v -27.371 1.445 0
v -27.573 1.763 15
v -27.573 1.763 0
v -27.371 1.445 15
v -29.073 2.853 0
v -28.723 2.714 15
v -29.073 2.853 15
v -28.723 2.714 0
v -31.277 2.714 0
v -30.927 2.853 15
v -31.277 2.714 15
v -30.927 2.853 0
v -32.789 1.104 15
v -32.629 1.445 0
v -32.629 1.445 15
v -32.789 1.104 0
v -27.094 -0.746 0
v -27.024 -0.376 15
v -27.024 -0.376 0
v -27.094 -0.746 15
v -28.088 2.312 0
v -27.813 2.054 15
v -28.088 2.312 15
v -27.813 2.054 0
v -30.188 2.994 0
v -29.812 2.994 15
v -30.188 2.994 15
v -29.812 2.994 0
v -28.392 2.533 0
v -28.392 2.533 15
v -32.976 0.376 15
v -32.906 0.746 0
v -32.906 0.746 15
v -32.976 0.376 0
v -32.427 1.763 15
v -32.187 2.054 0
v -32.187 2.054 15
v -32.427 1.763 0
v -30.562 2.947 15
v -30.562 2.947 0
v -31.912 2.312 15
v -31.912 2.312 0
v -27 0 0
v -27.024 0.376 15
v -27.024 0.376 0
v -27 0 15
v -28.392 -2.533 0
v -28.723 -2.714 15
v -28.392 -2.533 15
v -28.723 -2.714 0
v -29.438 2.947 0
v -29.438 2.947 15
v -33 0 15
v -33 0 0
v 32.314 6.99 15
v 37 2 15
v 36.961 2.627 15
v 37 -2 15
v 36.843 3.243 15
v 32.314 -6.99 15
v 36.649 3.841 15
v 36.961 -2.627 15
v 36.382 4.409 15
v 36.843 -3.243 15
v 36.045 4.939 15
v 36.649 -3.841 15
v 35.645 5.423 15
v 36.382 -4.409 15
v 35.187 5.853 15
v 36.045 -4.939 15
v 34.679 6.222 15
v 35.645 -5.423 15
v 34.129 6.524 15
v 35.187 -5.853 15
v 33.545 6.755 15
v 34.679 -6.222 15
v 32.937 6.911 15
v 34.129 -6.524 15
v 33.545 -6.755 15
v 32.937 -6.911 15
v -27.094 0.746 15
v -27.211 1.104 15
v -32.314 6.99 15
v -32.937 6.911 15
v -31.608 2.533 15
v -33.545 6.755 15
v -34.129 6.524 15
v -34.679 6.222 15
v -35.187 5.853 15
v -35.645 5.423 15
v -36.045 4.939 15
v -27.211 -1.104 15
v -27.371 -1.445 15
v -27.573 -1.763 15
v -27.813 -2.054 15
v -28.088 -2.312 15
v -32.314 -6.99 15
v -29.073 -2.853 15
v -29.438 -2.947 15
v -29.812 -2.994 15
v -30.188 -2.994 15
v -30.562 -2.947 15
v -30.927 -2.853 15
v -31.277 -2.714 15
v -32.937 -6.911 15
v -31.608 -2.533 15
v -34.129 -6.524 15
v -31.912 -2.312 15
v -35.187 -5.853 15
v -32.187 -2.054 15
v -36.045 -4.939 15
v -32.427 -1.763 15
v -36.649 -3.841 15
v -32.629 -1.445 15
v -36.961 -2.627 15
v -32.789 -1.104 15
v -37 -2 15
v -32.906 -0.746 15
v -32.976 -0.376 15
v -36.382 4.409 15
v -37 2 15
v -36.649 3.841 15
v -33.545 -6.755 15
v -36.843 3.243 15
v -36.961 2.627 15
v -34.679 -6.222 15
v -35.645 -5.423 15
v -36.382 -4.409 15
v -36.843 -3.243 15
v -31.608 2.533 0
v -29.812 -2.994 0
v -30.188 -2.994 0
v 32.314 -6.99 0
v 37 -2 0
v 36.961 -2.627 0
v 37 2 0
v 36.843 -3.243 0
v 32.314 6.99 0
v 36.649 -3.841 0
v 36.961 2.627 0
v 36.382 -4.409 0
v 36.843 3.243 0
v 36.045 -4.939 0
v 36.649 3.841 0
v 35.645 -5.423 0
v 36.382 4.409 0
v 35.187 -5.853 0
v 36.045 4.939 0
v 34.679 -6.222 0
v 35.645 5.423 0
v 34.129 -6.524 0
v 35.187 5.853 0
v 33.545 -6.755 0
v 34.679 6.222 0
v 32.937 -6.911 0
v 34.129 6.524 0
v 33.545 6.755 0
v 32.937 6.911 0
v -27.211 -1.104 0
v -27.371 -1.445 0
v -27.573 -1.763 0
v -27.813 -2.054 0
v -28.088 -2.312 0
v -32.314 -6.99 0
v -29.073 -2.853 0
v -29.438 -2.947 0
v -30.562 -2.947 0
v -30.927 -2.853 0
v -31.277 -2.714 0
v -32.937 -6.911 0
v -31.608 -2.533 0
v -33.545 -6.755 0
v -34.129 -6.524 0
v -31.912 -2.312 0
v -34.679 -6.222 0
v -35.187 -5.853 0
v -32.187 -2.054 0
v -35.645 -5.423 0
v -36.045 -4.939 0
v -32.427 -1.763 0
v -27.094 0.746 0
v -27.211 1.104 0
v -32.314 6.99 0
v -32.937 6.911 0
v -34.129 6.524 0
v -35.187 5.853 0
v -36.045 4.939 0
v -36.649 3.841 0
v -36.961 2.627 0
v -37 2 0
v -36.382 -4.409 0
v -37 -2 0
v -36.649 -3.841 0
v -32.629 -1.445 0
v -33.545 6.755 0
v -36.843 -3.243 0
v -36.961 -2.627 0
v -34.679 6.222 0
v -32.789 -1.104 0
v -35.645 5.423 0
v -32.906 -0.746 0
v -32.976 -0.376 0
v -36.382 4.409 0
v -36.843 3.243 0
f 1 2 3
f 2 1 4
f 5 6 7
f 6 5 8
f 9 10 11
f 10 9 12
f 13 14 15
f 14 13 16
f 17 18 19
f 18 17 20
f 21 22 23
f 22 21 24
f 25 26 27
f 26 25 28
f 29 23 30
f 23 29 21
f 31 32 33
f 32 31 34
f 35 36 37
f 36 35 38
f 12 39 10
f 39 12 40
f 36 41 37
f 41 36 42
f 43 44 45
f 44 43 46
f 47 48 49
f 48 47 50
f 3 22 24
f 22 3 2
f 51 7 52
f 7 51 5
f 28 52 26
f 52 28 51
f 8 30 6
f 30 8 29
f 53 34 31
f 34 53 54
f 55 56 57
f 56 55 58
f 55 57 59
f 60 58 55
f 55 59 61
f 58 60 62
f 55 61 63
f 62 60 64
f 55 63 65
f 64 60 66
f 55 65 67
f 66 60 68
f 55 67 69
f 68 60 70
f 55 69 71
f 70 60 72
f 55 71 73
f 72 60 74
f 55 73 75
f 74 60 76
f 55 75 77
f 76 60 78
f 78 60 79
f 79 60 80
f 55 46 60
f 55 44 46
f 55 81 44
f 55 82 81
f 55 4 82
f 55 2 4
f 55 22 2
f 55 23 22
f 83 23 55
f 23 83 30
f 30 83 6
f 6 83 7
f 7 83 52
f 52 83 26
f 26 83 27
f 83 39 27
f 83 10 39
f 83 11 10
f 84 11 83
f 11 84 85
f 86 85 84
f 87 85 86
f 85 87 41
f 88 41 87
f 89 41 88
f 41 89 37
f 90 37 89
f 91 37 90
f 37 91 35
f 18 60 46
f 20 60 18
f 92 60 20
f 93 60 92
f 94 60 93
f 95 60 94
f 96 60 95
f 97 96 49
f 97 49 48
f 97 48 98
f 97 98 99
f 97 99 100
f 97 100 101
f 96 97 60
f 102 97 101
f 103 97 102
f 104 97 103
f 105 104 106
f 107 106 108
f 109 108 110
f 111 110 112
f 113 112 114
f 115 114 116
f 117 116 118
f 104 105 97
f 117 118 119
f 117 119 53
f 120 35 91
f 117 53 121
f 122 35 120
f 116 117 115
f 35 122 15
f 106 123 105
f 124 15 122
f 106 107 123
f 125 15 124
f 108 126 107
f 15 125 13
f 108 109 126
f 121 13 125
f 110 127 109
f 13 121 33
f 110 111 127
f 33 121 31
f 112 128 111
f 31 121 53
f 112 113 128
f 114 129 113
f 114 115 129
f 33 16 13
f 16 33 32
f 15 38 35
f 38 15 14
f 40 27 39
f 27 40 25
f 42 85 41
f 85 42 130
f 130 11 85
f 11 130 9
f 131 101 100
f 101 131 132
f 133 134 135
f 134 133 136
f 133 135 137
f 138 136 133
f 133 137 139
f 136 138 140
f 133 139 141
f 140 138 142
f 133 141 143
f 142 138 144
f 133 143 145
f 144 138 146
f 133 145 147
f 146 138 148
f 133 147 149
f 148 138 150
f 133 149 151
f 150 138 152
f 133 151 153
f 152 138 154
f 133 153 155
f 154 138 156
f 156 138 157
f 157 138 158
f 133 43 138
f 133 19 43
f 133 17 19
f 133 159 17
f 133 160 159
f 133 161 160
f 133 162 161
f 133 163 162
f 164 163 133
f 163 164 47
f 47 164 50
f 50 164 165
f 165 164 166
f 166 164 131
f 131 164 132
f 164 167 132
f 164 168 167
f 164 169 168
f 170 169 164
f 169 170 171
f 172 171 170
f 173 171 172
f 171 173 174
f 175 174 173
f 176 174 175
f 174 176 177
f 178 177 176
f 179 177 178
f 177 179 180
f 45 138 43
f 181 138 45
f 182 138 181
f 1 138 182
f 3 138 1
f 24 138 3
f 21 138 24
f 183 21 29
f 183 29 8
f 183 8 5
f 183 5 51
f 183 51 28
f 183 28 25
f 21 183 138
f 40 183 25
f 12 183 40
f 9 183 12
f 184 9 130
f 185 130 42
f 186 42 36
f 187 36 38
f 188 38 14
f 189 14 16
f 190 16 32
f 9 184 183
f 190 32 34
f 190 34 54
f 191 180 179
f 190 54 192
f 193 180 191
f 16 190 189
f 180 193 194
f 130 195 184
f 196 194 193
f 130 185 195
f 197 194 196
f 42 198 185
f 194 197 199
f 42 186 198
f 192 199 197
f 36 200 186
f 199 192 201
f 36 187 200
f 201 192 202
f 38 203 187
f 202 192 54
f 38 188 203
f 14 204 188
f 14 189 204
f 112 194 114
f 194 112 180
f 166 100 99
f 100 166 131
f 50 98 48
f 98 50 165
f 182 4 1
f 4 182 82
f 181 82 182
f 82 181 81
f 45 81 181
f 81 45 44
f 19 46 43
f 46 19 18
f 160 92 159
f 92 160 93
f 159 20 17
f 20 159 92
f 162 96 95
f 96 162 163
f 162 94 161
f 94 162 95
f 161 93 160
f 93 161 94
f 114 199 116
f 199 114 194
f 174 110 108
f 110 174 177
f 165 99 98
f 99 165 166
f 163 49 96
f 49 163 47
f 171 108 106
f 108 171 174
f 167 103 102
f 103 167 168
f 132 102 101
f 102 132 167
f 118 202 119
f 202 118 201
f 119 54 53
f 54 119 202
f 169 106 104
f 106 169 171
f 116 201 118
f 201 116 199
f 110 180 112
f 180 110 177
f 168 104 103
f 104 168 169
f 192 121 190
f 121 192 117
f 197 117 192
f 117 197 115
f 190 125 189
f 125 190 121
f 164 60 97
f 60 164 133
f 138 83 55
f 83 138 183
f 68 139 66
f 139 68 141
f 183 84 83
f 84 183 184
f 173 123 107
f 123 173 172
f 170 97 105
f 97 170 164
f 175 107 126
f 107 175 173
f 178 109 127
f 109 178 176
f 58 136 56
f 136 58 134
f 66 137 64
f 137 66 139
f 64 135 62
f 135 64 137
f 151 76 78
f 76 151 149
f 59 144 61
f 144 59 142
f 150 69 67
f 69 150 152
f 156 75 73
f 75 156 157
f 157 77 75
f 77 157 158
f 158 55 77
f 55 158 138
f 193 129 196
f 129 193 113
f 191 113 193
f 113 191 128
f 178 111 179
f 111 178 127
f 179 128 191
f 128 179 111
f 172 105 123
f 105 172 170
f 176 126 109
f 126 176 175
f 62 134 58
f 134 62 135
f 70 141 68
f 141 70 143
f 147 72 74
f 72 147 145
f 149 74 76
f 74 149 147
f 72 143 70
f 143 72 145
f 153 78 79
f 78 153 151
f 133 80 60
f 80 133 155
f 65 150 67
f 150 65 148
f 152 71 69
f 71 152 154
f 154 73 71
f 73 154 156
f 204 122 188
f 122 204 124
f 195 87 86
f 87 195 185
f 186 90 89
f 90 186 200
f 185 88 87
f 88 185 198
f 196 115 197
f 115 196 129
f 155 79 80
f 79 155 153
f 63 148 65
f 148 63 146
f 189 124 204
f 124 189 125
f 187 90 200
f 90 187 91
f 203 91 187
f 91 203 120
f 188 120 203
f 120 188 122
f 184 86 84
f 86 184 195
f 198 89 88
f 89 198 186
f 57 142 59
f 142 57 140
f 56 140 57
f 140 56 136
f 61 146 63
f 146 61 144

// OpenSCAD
$fn = 50;


difference() {
	union() {
		hull() {
			translate(v = [-32.0000000000, 2.0000000000, 0]) {
				cylinder(h = 15, r = 5);
			}
			translate(v = [32.0000000000, 2.0000000000, 0]) {
				cylinder(h = 15, r = 5);
			}
			translate(v = [-32.0000000000, -2.0000000000, 0]) {
				cylinder(h = 15, r = 5);
			}
			translate(v = [32.0000000000, -2.0000000000, 0]) {
				cylinder(h = 15, r = 5);
			}
		}
	}
	union() {
		translate(v = [-30.0000000000, 0.0000000000, 0]) {
			cylinder(h = 15, r = 3.0000000000);
		}
		translate(v = [-30.0000000000, 0.0000000000, 0]) {
			cylinder(h = 15, r = 1.5000000000);
		}
		translate(v = [-30.0000000000, 0.0000000000, 0]) {
			cylinder(h = 15, r = 1.5000000000);
		}
		translate(v = [-30.0000000000, 0.0000000000, 0]) {
			cylinder(h = 15, r = 1.5000000000);
		}
	}
}
